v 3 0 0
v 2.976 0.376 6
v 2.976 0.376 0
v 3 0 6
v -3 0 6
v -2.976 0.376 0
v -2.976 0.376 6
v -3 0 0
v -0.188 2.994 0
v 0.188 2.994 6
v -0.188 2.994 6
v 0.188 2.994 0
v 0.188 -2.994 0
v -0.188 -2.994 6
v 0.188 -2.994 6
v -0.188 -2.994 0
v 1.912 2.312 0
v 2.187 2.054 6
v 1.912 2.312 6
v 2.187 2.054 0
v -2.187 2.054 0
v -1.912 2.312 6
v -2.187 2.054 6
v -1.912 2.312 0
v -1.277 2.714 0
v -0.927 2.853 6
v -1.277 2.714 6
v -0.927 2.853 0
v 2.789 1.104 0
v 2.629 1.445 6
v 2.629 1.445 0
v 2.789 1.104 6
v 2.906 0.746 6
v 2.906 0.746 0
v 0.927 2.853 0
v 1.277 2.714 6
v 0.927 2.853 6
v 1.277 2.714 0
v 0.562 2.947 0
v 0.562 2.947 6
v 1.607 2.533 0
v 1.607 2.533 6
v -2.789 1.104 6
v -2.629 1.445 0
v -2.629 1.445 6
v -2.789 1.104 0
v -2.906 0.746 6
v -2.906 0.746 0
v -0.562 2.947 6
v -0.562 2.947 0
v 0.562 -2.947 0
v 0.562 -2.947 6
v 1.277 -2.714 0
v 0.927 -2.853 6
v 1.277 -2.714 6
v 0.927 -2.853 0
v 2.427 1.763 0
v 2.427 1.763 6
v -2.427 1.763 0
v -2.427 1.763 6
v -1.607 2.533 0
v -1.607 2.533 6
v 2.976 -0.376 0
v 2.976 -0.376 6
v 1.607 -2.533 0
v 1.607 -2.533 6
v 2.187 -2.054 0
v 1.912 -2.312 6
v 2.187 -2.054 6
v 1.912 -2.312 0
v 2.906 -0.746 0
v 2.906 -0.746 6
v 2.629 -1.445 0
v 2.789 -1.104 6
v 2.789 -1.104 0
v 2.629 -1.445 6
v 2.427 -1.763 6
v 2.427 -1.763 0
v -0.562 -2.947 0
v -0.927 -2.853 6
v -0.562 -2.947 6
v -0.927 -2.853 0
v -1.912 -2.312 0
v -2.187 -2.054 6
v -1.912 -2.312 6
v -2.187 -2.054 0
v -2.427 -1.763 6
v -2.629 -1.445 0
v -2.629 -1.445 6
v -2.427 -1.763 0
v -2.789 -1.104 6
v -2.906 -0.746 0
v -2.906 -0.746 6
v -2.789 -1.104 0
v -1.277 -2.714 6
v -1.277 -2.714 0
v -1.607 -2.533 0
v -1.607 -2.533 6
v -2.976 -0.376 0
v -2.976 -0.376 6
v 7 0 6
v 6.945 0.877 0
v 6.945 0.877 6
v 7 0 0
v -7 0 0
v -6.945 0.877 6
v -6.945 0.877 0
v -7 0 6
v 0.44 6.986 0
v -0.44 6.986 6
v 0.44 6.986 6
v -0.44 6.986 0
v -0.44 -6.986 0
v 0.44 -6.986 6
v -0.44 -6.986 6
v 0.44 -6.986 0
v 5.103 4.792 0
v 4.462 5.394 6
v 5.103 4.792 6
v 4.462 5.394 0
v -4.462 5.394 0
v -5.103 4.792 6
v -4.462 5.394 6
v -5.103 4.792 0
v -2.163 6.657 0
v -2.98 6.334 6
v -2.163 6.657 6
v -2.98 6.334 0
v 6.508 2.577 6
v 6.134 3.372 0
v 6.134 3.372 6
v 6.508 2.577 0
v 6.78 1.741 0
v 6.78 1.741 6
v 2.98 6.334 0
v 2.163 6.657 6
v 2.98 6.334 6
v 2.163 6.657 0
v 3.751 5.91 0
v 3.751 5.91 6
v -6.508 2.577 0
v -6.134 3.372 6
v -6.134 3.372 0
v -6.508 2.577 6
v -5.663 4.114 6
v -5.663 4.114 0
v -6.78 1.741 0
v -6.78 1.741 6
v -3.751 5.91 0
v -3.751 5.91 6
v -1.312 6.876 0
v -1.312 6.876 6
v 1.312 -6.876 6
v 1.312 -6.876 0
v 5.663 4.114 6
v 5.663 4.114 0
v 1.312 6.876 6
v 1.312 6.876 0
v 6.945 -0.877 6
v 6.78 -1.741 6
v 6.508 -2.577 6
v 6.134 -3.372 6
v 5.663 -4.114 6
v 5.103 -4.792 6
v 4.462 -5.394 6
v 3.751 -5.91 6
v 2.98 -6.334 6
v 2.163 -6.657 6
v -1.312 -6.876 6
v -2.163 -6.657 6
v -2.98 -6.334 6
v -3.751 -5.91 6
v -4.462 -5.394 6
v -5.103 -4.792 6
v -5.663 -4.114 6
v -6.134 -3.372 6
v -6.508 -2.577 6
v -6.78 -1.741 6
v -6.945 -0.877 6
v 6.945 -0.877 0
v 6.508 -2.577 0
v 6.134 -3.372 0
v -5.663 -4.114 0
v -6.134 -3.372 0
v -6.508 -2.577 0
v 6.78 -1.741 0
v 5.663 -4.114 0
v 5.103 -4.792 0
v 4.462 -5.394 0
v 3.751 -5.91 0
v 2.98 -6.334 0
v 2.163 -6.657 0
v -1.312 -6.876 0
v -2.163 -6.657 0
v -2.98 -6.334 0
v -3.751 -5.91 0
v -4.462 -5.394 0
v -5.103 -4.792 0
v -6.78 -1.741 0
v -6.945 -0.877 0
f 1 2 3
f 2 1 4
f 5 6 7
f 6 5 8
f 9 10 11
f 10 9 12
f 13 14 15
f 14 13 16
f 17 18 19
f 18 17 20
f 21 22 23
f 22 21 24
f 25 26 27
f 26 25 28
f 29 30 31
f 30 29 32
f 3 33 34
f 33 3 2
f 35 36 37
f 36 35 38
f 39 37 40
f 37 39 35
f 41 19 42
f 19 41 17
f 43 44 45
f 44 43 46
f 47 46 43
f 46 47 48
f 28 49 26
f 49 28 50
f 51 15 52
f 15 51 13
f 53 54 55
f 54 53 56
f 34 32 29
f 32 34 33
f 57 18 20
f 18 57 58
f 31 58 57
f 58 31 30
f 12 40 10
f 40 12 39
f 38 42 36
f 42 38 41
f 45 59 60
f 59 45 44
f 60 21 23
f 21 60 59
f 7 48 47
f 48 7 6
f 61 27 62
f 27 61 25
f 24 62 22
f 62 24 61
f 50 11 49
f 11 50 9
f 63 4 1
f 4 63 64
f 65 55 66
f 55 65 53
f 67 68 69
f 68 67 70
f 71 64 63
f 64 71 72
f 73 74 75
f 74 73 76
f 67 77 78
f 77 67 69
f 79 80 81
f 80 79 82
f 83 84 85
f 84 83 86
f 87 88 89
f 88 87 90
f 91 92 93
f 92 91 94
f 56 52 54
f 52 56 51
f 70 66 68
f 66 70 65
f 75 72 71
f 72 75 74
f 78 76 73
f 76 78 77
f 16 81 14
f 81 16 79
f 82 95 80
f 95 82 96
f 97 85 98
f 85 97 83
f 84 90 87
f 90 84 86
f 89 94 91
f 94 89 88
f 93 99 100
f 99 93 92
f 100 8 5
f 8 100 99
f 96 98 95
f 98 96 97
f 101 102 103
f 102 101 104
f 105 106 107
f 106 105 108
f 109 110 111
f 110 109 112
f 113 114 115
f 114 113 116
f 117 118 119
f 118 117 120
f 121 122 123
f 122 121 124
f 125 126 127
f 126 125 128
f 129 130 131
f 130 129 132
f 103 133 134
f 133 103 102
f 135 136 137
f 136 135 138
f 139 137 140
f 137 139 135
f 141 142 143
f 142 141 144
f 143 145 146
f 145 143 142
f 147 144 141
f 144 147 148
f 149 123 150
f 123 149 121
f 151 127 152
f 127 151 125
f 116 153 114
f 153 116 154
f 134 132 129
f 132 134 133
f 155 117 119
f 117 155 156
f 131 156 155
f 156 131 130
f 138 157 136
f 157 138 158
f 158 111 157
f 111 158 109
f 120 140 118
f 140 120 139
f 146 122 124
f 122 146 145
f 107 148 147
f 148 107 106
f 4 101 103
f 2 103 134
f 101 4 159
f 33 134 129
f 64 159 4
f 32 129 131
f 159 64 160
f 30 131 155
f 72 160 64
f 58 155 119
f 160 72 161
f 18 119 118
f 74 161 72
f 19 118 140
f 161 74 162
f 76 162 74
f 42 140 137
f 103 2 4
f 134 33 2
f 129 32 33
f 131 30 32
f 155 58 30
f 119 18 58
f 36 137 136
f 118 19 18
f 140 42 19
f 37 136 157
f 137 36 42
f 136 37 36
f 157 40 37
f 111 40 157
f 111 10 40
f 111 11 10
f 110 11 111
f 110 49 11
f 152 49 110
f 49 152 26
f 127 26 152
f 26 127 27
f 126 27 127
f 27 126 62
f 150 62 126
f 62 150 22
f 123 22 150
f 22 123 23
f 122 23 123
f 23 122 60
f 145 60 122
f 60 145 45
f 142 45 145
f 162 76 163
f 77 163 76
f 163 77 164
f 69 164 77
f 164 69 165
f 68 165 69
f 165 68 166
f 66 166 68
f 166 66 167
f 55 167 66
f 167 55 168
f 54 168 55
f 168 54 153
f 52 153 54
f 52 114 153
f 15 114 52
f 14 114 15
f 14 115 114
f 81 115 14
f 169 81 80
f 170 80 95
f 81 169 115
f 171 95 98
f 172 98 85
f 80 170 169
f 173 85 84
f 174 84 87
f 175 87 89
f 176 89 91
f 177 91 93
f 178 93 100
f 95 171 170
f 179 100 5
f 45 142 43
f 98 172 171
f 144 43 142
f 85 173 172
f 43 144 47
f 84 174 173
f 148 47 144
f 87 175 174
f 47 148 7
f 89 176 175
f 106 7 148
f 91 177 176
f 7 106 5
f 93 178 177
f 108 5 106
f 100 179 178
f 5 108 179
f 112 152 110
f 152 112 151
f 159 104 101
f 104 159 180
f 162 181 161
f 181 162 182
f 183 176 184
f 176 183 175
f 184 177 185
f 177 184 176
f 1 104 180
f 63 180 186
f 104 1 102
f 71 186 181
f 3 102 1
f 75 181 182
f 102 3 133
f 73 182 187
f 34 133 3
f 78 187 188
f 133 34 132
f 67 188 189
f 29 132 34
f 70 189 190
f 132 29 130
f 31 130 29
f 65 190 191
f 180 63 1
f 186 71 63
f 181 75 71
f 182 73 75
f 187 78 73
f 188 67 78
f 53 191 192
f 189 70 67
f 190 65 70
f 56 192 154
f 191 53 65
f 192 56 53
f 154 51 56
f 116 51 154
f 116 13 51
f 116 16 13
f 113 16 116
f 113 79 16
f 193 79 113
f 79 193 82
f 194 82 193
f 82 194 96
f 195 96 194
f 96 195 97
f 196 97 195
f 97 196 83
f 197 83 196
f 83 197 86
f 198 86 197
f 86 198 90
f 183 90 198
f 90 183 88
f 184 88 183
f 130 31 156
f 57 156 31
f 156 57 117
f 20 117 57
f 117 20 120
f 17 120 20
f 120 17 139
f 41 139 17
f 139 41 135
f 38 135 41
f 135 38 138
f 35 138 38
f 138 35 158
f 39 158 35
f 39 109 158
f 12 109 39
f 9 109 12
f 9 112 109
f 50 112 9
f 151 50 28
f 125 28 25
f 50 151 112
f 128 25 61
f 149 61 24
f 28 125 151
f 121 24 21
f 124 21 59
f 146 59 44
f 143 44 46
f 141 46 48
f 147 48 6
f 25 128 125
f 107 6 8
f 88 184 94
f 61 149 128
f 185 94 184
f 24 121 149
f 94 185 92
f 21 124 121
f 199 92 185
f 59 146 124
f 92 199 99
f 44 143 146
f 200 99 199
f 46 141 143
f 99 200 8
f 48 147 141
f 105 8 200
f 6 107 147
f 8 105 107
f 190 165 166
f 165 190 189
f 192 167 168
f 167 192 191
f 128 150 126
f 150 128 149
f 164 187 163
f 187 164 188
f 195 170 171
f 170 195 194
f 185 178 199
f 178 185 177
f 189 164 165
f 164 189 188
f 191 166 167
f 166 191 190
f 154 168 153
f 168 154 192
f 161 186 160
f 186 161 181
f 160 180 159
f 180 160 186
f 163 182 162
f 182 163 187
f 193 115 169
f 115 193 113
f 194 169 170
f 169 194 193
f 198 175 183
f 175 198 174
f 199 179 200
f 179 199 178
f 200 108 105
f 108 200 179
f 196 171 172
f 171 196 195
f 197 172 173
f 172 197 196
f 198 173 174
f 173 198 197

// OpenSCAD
$fn = 50;


difference() {
	union() {
		translate(v = [0, 0, 0]) {
			rotate(a = [0, 0, 0]) {
				cylinder(h = 6, r = 7.0000000000);
			}
		}
	}
	union() {
		translate(v = [0.0000000000, 0.0000000000, 0]) {
			rotate(a = [0, 0, 0]) {
				translate(v = [0, 0, -50]) {
					rotate(a = [0, 0, 0]) {
						cylinder(h = 100, r = 3.0000000000);
					}
				}
			}
		}
	}
}
